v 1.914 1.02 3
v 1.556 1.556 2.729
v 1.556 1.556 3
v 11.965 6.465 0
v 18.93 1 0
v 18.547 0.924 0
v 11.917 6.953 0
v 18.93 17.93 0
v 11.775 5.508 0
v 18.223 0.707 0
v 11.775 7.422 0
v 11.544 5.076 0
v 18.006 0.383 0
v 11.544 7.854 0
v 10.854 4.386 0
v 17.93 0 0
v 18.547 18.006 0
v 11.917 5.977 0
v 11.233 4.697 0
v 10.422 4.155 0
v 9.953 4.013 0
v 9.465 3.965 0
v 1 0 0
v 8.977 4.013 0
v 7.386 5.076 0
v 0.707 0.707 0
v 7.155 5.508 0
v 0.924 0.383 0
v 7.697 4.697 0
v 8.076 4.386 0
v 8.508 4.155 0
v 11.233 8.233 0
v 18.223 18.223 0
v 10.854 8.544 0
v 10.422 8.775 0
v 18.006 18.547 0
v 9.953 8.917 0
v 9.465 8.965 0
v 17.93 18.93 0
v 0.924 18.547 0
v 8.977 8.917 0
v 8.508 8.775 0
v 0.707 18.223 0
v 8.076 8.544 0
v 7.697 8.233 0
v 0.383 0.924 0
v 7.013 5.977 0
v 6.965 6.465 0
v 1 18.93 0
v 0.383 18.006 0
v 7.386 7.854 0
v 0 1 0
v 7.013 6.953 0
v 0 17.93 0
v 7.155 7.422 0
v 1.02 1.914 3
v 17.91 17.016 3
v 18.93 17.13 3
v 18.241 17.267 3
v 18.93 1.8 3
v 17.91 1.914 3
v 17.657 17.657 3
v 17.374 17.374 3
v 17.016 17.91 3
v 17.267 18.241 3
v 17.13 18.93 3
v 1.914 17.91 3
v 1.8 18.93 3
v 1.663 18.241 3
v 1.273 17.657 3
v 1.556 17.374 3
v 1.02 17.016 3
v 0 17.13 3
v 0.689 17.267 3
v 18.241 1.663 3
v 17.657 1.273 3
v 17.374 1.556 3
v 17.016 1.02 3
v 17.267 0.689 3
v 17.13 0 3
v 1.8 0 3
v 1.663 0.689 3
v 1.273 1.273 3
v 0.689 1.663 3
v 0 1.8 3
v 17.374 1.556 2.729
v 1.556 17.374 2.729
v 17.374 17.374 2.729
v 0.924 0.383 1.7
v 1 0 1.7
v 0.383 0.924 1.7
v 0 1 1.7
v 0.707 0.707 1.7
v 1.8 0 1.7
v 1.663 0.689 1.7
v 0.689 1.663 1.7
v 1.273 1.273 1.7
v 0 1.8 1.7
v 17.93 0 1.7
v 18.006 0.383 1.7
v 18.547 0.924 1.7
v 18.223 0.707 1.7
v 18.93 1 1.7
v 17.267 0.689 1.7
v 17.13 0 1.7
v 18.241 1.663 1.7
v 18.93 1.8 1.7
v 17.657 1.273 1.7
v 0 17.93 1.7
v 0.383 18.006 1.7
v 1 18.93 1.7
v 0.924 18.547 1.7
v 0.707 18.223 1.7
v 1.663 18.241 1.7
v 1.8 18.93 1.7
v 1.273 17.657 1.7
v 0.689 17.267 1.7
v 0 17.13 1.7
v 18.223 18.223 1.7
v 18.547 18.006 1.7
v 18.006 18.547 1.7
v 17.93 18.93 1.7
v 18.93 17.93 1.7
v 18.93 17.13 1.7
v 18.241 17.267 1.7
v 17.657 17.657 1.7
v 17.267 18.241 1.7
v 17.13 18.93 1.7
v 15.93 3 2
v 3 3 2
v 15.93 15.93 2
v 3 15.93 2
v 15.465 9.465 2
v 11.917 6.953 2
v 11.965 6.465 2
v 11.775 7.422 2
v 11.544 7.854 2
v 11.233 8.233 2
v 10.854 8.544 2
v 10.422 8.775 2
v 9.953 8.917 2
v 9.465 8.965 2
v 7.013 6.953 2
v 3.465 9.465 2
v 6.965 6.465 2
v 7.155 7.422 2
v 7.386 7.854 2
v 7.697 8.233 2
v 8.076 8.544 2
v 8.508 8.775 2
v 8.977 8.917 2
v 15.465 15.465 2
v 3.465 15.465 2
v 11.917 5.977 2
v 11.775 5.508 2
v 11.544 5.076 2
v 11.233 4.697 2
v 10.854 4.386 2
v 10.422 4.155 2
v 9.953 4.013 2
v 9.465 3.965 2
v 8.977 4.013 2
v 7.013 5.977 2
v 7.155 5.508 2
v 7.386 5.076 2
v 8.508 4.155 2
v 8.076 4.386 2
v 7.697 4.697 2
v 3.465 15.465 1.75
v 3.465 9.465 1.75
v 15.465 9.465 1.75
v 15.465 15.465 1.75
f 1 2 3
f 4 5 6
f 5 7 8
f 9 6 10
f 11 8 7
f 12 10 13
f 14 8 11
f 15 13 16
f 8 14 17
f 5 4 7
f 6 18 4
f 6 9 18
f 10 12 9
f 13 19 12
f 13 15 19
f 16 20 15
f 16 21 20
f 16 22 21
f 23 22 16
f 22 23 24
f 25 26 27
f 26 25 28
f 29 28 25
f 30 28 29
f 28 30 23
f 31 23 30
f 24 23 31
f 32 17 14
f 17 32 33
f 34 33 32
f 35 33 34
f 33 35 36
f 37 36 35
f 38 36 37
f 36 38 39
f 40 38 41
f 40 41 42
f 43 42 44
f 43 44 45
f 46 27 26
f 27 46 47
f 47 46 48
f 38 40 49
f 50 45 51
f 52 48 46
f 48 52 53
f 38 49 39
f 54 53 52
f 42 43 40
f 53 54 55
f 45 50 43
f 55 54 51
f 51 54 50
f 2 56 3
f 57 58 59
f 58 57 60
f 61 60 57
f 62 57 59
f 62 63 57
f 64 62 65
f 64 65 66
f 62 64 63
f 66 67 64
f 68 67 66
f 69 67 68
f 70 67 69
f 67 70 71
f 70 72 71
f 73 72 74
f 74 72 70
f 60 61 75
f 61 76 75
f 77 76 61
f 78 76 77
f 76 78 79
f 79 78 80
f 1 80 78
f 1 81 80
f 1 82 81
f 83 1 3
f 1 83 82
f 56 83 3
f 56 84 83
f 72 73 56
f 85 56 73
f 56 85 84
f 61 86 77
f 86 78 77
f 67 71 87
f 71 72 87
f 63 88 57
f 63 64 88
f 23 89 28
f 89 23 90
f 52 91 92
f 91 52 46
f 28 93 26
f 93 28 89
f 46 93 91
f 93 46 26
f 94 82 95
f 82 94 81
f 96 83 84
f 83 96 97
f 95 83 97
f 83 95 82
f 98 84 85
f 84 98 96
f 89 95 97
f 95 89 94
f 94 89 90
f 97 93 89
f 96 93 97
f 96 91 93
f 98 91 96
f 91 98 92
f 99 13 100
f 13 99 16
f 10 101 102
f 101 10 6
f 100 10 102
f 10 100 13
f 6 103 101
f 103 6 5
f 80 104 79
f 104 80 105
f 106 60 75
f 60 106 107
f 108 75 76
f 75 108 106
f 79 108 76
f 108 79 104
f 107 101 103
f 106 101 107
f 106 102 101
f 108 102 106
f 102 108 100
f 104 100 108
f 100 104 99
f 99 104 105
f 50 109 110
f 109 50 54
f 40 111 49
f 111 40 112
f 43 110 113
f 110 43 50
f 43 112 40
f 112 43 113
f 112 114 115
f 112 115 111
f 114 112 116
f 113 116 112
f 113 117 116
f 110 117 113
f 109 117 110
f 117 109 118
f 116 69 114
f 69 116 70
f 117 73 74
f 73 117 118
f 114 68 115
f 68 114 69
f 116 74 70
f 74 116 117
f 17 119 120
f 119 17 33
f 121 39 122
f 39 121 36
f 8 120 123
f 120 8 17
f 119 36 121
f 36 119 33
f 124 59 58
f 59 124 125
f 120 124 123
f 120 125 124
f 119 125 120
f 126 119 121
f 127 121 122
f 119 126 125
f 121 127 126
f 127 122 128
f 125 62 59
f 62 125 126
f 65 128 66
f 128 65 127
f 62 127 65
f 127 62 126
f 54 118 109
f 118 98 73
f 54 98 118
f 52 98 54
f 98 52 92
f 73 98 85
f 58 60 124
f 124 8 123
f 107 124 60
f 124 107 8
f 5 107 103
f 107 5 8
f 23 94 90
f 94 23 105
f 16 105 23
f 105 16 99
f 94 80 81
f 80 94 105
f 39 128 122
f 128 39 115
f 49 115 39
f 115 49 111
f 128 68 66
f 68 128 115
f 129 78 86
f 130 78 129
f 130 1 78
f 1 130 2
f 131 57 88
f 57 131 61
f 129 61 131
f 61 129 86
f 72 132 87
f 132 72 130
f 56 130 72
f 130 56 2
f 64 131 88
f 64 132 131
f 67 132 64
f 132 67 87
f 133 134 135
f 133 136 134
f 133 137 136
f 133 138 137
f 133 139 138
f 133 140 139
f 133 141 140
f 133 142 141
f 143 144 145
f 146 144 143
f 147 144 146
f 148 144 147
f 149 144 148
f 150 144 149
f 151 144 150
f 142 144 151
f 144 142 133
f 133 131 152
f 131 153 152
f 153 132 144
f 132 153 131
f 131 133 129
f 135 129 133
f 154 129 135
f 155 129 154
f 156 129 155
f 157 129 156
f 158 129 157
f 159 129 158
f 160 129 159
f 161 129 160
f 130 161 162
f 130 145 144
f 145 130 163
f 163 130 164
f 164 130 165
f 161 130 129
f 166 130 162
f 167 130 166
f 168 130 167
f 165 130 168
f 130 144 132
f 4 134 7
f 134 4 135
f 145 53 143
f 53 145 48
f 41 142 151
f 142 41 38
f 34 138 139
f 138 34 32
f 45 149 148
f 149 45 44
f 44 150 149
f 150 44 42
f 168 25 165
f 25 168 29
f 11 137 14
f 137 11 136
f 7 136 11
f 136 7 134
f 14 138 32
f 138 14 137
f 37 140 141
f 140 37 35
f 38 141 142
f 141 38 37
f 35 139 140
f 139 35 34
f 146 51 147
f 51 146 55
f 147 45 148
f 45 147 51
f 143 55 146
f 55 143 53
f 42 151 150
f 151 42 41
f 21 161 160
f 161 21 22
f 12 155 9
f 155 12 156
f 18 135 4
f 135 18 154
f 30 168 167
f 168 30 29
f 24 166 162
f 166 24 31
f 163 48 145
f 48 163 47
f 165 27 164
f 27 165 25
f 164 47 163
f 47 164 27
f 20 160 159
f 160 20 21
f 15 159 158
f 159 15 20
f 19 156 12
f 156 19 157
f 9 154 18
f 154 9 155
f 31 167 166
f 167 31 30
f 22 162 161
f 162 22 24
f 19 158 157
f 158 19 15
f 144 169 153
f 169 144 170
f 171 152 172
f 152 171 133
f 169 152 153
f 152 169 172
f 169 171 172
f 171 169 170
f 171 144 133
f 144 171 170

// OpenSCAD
//OpenSCAD-Skript

//Moduldefinition mit Parametern für Frontplattensystem im 19mm-Raster
module FrontElem (
//Parameter
xwert=1,        //Anzahl der Segmente in horizontaler Richtung
ywert=1,        //Anzahl der Segmente in vertikaler Richtung
segment=18.93,  //Kantenlänge des Segments
thick=2.0,      //verbleibende Dicke des Frontplattensegments
wo=1.0,         //Wandstärke oben
wu=3,         //Wandstärke unten
hght=3.0,       //Höhe des Rands des Frontplattensegments
M3=false,       //Bohrungen für M3-Zylinderkopf-Inbusschraube
skd3=5.6,       //Schraubenkopfdurchmesser M3-Schraube
skh3=3.3,       //Schraubenkopfhöhe M3-Schraube
dsh3=3.1,       //Schaftdurchmesser M3-Schraube
dvst3=7,        //Verstärkung für M3-Schraube
B2mm=true,      //Bohrungen für 2mm-Schneidschrauben
skd2=3.6,       //Schraubenkopfdurchmesser 2mm-Schraube (4.4)
skh2=1.3,       //Schraubenkopfhöhe 2mm-Schraube
dsh2=2.0,       //Schaftdurchmesser 2mm-Schraube
dvst2=4.4,      //Verstärkung für 2mm-Schraube
Btext=6.0,      //Breite Beschriftungsband
Ltext=12,       //Länge Beschriftungsband
Dtext=0.3,      //Tiefe Beschriftungsfeld, oder Null
LEDdia=5.0,     //Durchmesser LED
KSWdia=6.0,     //Schaftdurchmesser Kippschalter
RSWdia=9.2,     //Schaftdurchmesser Drehschalter
RSWdist=9.4,    //Mittenabstand Pin
RSWpin=3.0,     //Durchmesser Pin
POTdia=6.8,     //Schaftdurchmesser Poti
TRMdia=4.0,     //Bohrung für Polklemme M4
TRSdia=6.0,     //Bohrung für Telefonbuchse 4mm
MCdia=11.8,     //Bohrung für MC-Buchse 4mm
MCdist=10.4,    //Abstand Abflachungen
BNCdia=9.5,     //Durchmesser Bohrung
BNCdist=8.0    //Abstand Abflachung
)
//Beginn Modul
{
difference(){   //difference 1
union(){        //union 1
difference(){   //difference 2
union(){        //union 2
    //alles, was vor der nächsten geschweiften Klammer steht, wird zusammengefügt (union 2)
//Körper des Frontplattensegments
cube([xwert*segment, ywert*segment, hght]);


}               //union 2 end
    //alles, was vor der nächsten geschweiften Klammer steht, wird davon abgezogen (difference 2)
//Einsenkung in das Segment
polyhedron(
               points= [[wu,wu,thick],                                  //0 unten
                        [xwert*segment-wu,wu,thick],                    //1 unten
                        [xwert*segment-wu,ywert*segment-wu,thick],      //2 unten
                        [wu,ywert*segment-wu,thick],                    //3 unten
                        [wo,wo,hght+0.01],                              //4 oben
                        [wo,ywert*segment-wo, hght+0.01],               //5 oben
                        [xwert*segment-wo,ywert*segment-wo,hght+0.01],  //6 oben
                        [xwert*segment-wo,wo,hght+0.01],                //7 oben
                       ],
               faces=  [[0,1,2,3],      //Boden
                        [0,4,7,1],      //Deckel
                        [1,7,6,2],      //Front
                        [2,6,5,3],      //Seitenwand rechts
                        [3,5,4,0],      //Rückwand
                        [4,5,6,7]]      //Seitenwand links
               );   
//Bohrung für LED mittig (Mindestgröße 1x1)
/*
translate([xwert*segment/2,ywert*segment/2-3,-0.1])  cylinder(d=LEDdia, h=10, $fn=32);
*/

//Bohrung für LED nach unten versetzt mit Textfeld darüber (Mindestgröße 1x1, bei 10mm LED 1x2)

translate([xwert*segment/2,ywert*segment/2-3,-0.1])  cylinder(d=LEDdia, h=10, $fn=32);
translate([xwert*segment/2-Ltext/2,ywert*segment/2,thick-Dtext+0.05])  cube([Ltext, Btext, Dtext]); 


//Bohrung für Kippschalter mittig (Mindestgröße 1x1)
/*
translate([xwert*segment/2,ywert*segment/2,-0.1])  cylinder(d=KSWdia, h=10, $fn=32); 
*/

//Bohrungen für Drehschalter mit Pin (Mindestgröße 2x2)
/*
translate([xwert*segment/2,ywert*segment/2,-0.1])  cylinder(d=RSWdia, h=10, $fn=32);
translate([xwert*segment/2+RSWdist,ywert*segment/2,-0.1])  cylinder(d=RSWpin, h=1.5, $fn=32);
*/

//Bohrung für Potentiometer 3mm-Schaft (Mindestgröße 1x1)
/*
translate([xwert*segment/2,ywert*segment/2,-0.1])  cylinder(d=POTdia, h=10, $fn=32);
*/

//Bohrung für 4mm-Polklemme M4 (Mindestgröße 1x1)
/*translate([xwert*segment/2,ywert*segment/2,-0.1])  cylinder(d=TRMdia, h=10, $fn=32);
*/       

//Bohrung für 4mm-Telefonbuchse (Mindestgröße 1x1)
/*
translate([xwert*segment/2,ywert*segment/2,-0.1])  cylinder(d=TRSdia, h=10, $fn=32);
*/

//Bohrung für 4mm-MC-Buchse (Mindestgröße 2x2)
/*
translate([xwert*segment/2,ywert*segment/2,-0.1])  cylinder(d=MCdia, h=10, $fn=32);
*/

//Bohrung für BNC-Buchse (Mindestgröße 1x1)
//translate([xwert*segment/2,ywert*segment/2,-0.1])  cylinder(d=BNCdia, h=10, $fn=32);

}  //difference 2 end
    //alles, was vor der nächsten geschweiften Klammer steht, wird dazu hinzugefügt (union 1)
//Verstärkungen für Schrauben x-Achse unten
for (x=[0:segment:xwert*segment])
{
if (M3==true) translate([x,0,0]) cylinder(d=dvst3,h=hght,$fn=16);
if (B2mm==true) translate([x,0,0]) cylinder(d=dvst2,h=hght,$fn=16);
}
//Verstärkungen für Schrauben x-Achse oben
for (x=[0:segment:xwert*segment])
{
if (M3==true) translate([x,ywert*segment,0]) cylinder(d=dvst3,h=hght,$fn=16);
if (B2mm==true) translate([x,ywert*segment,0]) cylinder(d=dvst2,h=hght,$fn=16);
}
//Verstärkungen für Schrauben y-Achse links
for (y=[0:segment:ywert*segment])
{
if (M3==true) translate([0,y,0]) cylinder(d=dvst3,h=hght,$fn=16);
if (B2mm==true) translate([0,y,0]) cylinder(d=dvst2,h=hght,$fn=16);
}
//Verstärkungen für Schrauben y-Achse rechts
for (y=[0:segment:ywert*segment])
{
if (M3==true) translate([xwert*segment,y,0]) cylinder(d=dvst3,h=hght,$fn=16);
if (B2mm==true) translate([xwert*segment,y,0]) cylinder(d=dvst2,h=hght,$fn=16);
}

//Abflachungen für 4mm-MC-Buchse (Mindestgröße 2x2)
/*
translate([xwert*segment/2-5,ywert*segment/2+MCdist/2,0])  cube([10,3,thick]);
translate([xwert*segment/2-5,ywert*segment/2-MCdist/2-3,0])  cube([10,3,thick]);
*/

//Abflachungen für BNC-Buchse (Mindestgröße 1x1)
//translate([xwert*segment/2-5,ywert*segment/2+BNCdist/2,0])  cube([10,3,thick]);
//translate([xwert*segment/2-5,ywert*segment/2-BNCdist/2-3,0])  cube([10,3,thick]);


}               //union 1 end
    //alles, was vor der nächsten geschweiften Klammer steht, wird davon wieder abgezogen (difference 1)
//Bohrungen für Schrauben x-Achse unten
for (x=[0:segment:xwert*segment])
{
if (M3==true) translate([x,0,-0.1]) cylinder(d=dsh3,h=2*hght,$fn=16);
if (M3==true) translate([x,0,hght-skh3]) cylinder(d=skd3,h=2*hght,$fn=16);
if (B2mm==true) translate([x,0,-0.1]) cylinder(d=dsh2,h=2*hght,$fn=16);
if (B2mm==true) translate([x,0,hght-skh2]) cylinder(d=skd2,h=2*hght,$fn=16); 
}
//Bohrungen für Schrauben x-Achse oben
for (x=[0:segment:xwert*segment])
{
if (M3==true) translate([x,ywert*segment,-0.1]) cylinder(d=dsh3,h=2*hght,$fn=16);
if (M3==true) translate([x,ywert*segment,hght-skh3]) cylinder(d=skd3,h=2*hght,$fn=16);
if (B2mm==true) translate([x,ywert*segment,-0.1]) cylinder(d=dsh2,h=2*hght,$fn=16);
if (B2mm==true) translate([x,ywert*segment,hght-skh2]) cylinder(d=skd2,h=2*hght,$fn=16); 
}
//Bohrungen für Schrauben y-Achse links
for (y=[0:segment:ywert*segment])
{
if (M3==true) translate([0,y,-0.1]) cylinder(d=dsh3,h=2*hght,$fn=16);
if (M3==true) translate([0,y,hght-skh3]) cylinder(d=skd3,h=2*hght,$fn=16);
if (B2mm==true) translate([0,y,-0.1]) cylinder(d=dsh2,h=2*hght,$fn=16);
if (B2mm==true) translate([0,y,hght-skh2]) cylinder(d=skd2,h=2*hght,$fn=16); 
}
//Bohrungen für Schrauben y-Achse rechts
for (y=[0:segment:ywert*segment])
{
if (M3==true) translate([xwert*segment,y,-0.1]) cylinder(d=dsh3,h=2*hght,$fn=16);
if (M3==true) translate([xwert*segment,y,hght-skh3]) cylinder(d=skd3,h=2*hght,$fn=16);
if (B2mm==true) translate([xwert*segment,y,-0.1]) cylinder(d=dsh2,h=2*hght,$fn=16);
if (B2mm==true) translate([xwert*segment,y,hght-skh2]) cylinder(d=skd2,h=2*hght,$fn=16); 
}
//Abschneiden Verstärkungen unten
translate([-250,-10,-0.1])
cube([500,10,25]);
//Abschneiden Verstärkungen oben
translate([-250,ywert*segment,-0.1])
cube([500,10,25]);
//Abschneiden Verstärkungen links
translate([-10,-250,-0.1])
cube([10,500,25]);
//Abschneiden Verstärkungen rechts
translate([xwert*segment,-250,-0.1])
cube([10,500,25]);
/*LED-Ausschnitt
translate([xwert*segment/2-3,ywert*segment/2-3,thick-0.5])
cube([6,6,3]);
translate([xwert*segment/2-2.5,ywert*segment/2-2.5,-0.1])
cube([5,5,2*thick]);
*/

}               //difference 1 end

}  //module end

//Hier werden Instanzen des Moduls aufgerufen
translate([0,0,0]) FrontElem();
